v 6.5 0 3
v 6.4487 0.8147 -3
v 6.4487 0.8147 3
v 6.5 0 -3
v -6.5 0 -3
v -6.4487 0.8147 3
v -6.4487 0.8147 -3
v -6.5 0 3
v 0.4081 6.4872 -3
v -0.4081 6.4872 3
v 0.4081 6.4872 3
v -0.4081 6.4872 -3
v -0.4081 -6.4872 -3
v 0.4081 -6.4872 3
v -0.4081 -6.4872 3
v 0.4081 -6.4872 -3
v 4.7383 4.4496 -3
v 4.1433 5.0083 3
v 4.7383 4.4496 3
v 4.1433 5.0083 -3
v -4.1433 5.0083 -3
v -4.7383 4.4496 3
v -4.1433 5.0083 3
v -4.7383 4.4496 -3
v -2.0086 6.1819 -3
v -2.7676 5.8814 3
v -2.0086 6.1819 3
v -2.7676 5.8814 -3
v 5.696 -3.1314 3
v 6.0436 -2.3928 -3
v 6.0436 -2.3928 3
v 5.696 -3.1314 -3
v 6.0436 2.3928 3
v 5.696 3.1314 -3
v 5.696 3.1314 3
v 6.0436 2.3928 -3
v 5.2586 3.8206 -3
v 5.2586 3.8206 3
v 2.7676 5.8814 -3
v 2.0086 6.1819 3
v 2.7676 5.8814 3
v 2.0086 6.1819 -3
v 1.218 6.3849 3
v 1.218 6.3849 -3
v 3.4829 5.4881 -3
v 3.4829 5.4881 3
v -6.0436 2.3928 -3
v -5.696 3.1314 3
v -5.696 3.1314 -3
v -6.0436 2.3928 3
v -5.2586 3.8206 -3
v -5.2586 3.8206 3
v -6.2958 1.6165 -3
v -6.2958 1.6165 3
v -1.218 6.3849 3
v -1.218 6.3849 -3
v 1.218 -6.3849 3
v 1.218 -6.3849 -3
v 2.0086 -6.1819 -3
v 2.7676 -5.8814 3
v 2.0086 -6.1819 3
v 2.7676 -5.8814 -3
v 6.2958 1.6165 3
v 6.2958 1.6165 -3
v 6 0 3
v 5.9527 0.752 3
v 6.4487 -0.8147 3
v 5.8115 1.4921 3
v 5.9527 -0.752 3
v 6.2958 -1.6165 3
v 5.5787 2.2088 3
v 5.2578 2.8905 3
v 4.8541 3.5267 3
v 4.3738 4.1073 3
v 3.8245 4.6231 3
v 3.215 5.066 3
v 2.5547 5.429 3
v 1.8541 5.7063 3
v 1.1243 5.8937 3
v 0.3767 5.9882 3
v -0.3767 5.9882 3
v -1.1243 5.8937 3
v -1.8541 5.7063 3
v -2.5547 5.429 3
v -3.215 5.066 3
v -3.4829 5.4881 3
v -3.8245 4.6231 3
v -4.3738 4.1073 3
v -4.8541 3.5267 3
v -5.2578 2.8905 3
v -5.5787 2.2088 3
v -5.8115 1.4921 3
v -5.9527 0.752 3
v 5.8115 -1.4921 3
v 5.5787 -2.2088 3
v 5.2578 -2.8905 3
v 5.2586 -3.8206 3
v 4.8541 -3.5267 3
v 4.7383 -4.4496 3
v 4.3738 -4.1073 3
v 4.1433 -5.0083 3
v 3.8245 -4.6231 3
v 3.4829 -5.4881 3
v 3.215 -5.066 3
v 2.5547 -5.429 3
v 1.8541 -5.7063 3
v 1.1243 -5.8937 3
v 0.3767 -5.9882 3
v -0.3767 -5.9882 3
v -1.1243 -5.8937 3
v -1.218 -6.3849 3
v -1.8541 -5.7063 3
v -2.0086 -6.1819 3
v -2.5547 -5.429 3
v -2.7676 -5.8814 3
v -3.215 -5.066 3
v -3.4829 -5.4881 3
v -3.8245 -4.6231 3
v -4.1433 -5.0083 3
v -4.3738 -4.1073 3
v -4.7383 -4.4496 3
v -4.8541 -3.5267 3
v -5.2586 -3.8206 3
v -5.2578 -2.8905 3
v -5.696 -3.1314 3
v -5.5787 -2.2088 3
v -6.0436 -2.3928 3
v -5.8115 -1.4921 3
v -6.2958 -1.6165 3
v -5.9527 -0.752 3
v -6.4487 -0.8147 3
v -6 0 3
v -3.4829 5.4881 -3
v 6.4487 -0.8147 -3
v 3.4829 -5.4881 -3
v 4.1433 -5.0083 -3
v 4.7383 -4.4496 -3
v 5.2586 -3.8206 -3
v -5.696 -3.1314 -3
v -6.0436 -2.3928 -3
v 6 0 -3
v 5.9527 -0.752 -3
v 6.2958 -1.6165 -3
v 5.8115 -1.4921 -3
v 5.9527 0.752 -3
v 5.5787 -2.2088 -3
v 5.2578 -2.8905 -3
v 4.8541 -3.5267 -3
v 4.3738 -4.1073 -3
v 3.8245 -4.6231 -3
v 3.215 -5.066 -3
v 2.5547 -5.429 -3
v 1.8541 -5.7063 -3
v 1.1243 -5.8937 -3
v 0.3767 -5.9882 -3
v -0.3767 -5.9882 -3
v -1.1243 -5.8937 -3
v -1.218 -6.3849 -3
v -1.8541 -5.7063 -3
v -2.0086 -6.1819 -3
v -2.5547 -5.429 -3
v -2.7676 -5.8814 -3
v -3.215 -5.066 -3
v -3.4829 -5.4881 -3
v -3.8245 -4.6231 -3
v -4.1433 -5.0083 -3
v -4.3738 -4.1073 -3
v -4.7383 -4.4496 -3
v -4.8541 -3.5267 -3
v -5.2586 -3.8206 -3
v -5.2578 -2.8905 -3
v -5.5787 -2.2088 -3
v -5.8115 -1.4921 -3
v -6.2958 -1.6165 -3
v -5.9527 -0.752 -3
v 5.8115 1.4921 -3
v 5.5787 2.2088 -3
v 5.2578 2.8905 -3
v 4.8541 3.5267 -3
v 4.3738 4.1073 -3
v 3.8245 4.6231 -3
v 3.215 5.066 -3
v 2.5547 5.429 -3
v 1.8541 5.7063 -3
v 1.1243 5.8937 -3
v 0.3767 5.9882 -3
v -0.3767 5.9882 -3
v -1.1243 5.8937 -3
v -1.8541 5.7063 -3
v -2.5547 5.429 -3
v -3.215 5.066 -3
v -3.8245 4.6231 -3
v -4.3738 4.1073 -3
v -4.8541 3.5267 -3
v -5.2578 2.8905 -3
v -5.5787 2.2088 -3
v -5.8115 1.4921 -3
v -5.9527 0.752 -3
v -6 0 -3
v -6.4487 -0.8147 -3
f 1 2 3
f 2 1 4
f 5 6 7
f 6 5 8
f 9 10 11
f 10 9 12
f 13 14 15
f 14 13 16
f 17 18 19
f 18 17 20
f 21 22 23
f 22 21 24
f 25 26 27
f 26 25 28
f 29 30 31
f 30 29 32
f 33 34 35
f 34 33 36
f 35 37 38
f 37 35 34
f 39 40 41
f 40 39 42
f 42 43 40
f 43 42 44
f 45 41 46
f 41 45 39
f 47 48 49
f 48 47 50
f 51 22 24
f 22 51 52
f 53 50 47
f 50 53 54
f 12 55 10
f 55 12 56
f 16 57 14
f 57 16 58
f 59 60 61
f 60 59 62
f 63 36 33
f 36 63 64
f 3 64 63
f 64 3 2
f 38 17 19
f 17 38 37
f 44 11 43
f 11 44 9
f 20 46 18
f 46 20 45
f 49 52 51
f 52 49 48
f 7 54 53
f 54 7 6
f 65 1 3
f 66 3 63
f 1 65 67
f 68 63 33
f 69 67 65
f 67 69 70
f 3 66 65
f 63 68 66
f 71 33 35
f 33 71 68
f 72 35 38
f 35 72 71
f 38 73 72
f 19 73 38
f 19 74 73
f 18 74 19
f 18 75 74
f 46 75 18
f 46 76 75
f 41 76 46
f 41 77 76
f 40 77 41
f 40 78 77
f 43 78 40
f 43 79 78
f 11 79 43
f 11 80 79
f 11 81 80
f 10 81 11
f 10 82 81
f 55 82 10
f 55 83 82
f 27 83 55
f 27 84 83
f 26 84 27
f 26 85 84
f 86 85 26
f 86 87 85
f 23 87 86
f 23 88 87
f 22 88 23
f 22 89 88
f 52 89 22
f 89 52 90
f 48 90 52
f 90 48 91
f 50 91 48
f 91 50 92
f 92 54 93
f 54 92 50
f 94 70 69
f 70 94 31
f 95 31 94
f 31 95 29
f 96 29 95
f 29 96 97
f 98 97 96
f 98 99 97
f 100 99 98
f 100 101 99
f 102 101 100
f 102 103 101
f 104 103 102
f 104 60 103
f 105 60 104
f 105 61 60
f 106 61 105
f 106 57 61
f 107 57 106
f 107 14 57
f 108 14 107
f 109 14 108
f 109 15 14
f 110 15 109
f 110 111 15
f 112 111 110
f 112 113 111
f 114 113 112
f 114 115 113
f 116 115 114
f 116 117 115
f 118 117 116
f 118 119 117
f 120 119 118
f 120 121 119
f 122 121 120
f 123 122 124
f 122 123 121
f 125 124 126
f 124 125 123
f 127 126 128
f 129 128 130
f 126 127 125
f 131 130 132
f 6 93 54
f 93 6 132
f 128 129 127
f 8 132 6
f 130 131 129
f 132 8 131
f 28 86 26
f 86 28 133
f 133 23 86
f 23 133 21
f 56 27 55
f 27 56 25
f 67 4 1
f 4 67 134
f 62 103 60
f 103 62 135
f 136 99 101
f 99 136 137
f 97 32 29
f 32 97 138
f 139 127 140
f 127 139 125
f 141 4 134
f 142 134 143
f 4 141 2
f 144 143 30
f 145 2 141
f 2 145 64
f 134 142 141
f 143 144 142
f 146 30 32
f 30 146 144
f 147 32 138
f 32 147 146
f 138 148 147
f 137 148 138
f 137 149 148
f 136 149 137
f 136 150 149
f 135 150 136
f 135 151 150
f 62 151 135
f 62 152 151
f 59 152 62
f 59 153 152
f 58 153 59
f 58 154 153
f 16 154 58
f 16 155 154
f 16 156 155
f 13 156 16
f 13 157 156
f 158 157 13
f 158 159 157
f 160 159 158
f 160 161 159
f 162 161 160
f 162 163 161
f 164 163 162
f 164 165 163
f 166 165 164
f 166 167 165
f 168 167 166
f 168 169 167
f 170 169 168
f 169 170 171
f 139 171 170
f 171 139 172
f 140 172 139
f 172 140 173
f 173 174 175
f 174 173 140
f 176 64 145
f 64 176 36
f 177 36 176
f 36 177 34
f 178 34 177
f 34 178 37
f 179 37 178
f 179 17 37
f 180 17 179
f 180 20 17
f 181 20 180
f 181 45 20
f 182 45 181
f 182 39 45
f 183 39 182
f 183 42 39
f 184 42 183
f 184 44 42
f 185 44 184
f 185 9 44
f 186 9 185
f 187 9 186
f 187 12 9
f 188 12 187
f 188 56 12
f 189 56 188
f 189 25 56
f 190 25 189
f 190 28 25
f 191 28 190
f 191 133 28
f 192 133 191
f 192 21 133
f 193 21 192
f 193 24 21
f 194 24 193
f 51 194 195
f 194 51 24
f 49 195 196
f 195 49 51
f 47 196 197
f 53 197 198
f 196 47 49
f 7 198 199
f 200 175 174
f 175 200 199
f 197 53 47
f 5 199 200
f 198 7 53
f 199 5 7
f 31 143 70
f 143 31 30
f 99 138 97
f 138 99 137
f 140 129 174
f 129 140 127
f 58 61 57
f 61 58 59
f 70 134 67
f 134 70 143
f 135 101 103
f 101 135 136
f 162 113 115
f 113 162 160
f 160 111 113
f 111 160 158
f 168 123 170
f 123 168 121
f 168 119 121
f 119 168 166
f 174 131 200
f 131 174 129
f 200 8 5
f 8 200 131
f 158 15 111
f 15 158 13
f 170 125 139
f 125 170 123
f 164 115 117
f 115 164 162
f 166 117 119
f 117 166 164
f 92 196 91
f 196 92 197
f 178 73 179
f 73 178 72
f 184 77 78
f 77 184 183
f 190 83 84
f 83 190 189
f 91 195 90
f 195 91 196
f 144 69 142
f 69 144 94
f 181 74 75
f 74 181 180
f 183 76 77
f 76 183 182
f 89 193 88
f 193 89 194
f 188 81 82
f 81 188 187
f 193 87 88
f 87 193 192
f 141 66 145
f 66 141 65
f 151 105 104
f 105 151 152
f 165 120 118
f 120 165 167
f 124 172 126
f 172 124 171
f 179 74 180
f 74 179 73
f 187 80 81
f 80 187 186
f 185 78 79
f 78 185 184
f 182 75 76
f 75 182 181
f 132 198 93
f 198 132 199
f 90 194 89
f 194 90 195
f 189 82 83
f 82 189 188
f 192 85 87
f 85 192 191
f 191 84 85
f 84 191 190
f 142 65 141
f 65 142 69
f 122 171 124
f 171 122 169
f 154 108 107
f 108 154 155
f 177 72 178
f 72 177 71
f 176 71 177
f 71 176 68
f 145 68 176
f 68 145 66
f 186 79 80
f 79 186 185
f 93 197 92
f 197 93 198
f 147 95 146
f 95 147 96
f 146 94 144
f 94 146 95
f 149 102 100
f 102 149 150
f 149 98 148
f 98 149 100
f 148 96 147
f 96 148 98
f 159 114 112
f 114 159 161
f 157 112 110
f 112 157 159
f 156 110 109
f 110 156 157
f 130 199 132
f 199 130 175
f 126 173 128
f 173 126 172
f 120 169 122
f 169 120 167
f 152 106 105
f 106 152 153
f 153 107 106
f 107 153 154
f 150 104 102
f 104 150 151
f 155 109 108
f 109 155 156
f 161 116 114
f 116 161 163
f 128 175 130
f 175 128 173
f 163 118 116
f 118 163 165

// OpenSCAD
$fn = 50;


difference() {
	union() {
		translate(v = [0, 0, -3.0000000000]) {
			cylinder(h = 6, r = 6.5000000000);
		}
	}
	union() {
		translate(v = [0, 0, -100.0000000000]) {
			cylinder(h = 200, r = 6);
		}
	}
}
